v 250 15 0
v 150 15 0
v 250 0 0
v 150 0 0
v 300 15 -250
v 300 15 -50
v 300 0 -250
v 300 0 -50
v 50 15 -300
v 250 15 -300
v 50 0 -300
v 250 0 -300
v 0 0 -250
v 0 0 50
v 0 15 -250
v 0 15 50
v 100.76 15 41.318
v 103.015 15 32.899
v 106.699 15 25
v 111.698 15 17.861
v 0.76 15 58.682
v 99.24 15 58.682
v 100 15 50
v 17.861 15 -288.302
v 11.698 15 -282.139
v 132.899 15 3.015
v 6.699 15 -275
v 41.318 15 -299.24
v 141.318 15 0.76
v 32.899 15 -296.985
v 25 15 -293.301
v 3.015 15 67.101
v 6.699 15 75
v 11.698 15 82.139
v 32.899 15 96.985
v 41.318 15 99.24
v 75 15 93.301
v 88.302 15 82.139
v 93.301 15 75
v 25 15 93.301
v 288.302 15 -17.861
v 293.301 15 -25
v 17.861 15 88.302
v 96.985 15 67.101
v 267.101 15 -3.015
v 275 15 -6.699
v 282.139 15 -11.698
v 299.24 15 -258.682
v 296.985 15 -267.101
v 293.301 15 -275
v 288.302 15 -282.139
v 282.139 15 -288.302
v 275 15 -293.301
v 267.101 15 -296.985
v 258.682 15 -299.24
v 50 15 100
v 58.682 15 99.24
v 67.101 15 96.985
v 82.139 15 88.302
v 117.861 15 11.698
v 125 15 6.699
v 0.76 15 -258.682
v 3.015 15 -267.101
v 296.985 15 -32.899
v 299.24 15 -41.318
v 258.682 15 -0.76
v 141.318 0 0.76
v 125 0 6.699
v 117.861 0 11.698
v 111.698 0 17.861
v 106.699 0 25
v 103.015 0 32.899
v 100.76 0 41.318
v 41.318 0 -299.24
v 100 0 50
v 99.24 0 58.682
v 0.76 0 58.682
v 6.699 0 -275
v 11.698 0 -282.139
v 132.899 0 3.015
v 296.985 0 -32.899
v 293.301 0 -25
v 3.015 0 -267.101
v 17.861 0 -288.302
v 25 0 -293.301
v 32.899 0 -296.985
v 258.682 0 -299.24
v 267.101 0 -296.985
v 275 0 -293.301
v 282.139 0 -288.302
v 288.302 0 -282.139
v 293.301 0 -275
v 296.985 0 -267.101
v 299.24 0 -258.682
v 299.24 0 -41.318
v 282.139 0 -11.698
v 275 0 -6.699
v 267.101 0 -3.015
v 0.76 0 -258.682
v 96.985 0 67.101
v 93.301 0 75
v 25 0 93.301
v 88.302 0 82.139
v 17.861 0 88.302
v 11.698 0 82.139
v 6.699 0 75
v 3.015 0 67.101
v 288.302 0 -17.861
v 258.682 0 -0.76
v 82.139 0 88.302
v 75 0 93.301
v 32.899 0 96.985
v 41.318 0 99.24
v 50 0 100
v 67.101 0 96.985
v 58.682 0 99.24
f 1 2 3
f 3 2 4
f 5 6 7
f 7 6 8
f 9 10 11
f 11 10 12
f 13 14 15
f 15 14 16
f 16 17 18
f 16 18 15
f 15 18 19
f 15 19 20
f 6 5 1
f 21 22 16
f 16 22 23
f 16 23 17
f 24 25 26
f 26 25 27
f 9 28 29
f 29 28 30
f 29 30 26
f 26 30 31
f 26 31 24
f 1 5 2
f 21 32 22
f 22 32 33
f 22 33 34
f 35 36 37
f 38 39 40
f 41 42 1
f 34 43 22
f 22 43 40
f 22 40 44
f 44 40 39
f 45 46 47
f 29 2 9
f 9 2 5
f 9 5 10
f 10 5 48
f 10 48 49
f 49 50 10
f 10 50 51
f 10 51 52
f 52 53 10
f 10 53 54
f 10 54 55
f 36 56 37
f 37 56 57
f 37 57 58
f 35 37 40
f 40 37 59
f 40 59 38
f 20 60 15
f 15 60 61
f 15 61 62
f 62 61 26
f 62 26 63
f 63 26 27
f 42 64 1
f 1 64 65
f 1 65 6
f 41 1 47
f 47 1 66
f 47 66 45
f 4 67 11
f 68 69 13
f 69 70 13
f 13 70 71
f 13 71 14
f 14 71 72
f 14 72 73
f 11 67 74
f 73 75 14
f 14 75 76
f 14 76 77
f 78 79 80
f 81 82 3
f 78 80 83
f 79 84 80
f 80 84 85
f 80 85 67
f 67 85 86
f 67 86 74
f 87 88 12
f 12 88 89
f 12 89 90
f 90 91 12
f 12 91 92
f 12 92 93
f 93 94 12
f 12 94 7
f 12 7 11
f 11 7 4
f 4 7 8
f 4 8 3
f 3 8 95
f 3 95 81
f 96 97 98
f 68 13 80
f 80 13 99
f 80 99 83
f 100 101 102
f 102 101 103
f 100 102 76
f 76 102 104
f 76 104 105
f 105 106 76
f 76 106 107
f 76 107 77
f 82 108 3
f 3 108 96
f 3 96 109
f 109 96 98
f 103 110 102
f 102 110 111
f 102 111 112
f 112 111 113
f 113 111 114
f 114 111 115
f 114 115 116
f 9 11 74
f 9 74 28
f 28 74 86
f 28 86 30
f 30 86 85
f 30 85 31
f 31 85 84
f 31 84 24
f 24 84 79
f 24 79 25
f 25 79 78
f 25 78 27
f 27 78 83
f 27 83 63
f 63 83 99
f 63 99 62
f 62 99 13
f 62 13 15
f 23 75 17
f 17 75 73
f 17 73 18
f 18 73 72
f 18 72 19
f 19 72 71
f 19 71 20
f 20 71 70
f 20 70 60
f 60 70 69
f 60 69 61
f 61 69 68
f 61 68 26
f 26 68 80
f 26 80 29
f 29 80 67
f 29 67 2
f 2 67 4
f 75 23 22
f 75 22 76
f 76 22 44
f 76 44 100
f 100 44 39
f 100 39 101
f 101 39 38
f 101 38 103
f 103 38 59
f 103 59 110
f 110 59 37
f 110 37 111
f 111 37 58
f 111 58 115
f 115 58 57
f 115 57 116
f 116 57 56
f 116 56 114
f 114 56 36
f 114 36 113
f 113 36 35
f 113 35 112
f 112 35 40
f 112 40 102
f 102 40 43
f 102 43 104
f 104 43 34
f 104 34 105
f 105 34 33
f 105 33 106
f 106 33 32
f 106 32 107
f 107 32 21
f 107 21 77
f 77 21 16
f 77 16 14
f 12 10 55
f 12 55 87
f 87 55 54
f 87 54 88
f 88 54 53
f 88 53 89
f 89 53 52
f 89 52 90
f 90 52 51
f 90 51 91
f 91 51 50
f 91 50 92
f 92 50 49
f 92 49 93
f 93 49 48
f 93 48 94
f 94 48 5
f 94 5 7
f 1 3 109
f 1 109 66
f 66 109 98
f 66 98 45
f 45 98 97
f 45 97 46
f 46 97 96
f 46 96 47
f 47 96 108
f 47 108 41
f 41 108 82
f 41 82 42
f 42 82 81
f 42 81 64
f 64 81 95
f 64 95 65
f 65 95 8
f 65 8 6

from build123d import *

# Parameters (mm, degrees)
SKETCH1_W           = 300
SKETCH1_H           = 300
SKETCH1_W_2         = 100
SKETCH1_H_2         = 100
BOSS_EXTRUDE1_DEPTH = 15
FILLET1_R           = 50


with BuildPart() as part:
    # Sketch1 → Boss-Extrude1 (new body)
    with BuildSketch(Plane(origin=(0, 0, 0), x_dir=(1, 0, 0), z_dir=(0, 1, 0))):
        with Locations((150, 150)):
            Rectangle(SKETCH1_W, SKETCH1_H)
        with Locations((50, -50)):
            Rectangle(SKETCH1_W_2, SKETCH1_H_2)
    extrude(amount=BOSS_EXTRUDE1_DEPTH)

    # Fillet1
    fillet1_edges = [part.edges().sort_by_distance(p)[0] for p in [
        (0, 7.5, -300),
        (0, 7.5, 100),
        (300, 7.5, -300),
        (300, 7.5, 0),
        (100, 7.5, 100),
        (100, 7.5, 0),
    ]]
    fillet(fillet1_edges, radius=FILLET1_R - 0.0001)  # a hair under: the kernel refuses the full size


solid = part.part
